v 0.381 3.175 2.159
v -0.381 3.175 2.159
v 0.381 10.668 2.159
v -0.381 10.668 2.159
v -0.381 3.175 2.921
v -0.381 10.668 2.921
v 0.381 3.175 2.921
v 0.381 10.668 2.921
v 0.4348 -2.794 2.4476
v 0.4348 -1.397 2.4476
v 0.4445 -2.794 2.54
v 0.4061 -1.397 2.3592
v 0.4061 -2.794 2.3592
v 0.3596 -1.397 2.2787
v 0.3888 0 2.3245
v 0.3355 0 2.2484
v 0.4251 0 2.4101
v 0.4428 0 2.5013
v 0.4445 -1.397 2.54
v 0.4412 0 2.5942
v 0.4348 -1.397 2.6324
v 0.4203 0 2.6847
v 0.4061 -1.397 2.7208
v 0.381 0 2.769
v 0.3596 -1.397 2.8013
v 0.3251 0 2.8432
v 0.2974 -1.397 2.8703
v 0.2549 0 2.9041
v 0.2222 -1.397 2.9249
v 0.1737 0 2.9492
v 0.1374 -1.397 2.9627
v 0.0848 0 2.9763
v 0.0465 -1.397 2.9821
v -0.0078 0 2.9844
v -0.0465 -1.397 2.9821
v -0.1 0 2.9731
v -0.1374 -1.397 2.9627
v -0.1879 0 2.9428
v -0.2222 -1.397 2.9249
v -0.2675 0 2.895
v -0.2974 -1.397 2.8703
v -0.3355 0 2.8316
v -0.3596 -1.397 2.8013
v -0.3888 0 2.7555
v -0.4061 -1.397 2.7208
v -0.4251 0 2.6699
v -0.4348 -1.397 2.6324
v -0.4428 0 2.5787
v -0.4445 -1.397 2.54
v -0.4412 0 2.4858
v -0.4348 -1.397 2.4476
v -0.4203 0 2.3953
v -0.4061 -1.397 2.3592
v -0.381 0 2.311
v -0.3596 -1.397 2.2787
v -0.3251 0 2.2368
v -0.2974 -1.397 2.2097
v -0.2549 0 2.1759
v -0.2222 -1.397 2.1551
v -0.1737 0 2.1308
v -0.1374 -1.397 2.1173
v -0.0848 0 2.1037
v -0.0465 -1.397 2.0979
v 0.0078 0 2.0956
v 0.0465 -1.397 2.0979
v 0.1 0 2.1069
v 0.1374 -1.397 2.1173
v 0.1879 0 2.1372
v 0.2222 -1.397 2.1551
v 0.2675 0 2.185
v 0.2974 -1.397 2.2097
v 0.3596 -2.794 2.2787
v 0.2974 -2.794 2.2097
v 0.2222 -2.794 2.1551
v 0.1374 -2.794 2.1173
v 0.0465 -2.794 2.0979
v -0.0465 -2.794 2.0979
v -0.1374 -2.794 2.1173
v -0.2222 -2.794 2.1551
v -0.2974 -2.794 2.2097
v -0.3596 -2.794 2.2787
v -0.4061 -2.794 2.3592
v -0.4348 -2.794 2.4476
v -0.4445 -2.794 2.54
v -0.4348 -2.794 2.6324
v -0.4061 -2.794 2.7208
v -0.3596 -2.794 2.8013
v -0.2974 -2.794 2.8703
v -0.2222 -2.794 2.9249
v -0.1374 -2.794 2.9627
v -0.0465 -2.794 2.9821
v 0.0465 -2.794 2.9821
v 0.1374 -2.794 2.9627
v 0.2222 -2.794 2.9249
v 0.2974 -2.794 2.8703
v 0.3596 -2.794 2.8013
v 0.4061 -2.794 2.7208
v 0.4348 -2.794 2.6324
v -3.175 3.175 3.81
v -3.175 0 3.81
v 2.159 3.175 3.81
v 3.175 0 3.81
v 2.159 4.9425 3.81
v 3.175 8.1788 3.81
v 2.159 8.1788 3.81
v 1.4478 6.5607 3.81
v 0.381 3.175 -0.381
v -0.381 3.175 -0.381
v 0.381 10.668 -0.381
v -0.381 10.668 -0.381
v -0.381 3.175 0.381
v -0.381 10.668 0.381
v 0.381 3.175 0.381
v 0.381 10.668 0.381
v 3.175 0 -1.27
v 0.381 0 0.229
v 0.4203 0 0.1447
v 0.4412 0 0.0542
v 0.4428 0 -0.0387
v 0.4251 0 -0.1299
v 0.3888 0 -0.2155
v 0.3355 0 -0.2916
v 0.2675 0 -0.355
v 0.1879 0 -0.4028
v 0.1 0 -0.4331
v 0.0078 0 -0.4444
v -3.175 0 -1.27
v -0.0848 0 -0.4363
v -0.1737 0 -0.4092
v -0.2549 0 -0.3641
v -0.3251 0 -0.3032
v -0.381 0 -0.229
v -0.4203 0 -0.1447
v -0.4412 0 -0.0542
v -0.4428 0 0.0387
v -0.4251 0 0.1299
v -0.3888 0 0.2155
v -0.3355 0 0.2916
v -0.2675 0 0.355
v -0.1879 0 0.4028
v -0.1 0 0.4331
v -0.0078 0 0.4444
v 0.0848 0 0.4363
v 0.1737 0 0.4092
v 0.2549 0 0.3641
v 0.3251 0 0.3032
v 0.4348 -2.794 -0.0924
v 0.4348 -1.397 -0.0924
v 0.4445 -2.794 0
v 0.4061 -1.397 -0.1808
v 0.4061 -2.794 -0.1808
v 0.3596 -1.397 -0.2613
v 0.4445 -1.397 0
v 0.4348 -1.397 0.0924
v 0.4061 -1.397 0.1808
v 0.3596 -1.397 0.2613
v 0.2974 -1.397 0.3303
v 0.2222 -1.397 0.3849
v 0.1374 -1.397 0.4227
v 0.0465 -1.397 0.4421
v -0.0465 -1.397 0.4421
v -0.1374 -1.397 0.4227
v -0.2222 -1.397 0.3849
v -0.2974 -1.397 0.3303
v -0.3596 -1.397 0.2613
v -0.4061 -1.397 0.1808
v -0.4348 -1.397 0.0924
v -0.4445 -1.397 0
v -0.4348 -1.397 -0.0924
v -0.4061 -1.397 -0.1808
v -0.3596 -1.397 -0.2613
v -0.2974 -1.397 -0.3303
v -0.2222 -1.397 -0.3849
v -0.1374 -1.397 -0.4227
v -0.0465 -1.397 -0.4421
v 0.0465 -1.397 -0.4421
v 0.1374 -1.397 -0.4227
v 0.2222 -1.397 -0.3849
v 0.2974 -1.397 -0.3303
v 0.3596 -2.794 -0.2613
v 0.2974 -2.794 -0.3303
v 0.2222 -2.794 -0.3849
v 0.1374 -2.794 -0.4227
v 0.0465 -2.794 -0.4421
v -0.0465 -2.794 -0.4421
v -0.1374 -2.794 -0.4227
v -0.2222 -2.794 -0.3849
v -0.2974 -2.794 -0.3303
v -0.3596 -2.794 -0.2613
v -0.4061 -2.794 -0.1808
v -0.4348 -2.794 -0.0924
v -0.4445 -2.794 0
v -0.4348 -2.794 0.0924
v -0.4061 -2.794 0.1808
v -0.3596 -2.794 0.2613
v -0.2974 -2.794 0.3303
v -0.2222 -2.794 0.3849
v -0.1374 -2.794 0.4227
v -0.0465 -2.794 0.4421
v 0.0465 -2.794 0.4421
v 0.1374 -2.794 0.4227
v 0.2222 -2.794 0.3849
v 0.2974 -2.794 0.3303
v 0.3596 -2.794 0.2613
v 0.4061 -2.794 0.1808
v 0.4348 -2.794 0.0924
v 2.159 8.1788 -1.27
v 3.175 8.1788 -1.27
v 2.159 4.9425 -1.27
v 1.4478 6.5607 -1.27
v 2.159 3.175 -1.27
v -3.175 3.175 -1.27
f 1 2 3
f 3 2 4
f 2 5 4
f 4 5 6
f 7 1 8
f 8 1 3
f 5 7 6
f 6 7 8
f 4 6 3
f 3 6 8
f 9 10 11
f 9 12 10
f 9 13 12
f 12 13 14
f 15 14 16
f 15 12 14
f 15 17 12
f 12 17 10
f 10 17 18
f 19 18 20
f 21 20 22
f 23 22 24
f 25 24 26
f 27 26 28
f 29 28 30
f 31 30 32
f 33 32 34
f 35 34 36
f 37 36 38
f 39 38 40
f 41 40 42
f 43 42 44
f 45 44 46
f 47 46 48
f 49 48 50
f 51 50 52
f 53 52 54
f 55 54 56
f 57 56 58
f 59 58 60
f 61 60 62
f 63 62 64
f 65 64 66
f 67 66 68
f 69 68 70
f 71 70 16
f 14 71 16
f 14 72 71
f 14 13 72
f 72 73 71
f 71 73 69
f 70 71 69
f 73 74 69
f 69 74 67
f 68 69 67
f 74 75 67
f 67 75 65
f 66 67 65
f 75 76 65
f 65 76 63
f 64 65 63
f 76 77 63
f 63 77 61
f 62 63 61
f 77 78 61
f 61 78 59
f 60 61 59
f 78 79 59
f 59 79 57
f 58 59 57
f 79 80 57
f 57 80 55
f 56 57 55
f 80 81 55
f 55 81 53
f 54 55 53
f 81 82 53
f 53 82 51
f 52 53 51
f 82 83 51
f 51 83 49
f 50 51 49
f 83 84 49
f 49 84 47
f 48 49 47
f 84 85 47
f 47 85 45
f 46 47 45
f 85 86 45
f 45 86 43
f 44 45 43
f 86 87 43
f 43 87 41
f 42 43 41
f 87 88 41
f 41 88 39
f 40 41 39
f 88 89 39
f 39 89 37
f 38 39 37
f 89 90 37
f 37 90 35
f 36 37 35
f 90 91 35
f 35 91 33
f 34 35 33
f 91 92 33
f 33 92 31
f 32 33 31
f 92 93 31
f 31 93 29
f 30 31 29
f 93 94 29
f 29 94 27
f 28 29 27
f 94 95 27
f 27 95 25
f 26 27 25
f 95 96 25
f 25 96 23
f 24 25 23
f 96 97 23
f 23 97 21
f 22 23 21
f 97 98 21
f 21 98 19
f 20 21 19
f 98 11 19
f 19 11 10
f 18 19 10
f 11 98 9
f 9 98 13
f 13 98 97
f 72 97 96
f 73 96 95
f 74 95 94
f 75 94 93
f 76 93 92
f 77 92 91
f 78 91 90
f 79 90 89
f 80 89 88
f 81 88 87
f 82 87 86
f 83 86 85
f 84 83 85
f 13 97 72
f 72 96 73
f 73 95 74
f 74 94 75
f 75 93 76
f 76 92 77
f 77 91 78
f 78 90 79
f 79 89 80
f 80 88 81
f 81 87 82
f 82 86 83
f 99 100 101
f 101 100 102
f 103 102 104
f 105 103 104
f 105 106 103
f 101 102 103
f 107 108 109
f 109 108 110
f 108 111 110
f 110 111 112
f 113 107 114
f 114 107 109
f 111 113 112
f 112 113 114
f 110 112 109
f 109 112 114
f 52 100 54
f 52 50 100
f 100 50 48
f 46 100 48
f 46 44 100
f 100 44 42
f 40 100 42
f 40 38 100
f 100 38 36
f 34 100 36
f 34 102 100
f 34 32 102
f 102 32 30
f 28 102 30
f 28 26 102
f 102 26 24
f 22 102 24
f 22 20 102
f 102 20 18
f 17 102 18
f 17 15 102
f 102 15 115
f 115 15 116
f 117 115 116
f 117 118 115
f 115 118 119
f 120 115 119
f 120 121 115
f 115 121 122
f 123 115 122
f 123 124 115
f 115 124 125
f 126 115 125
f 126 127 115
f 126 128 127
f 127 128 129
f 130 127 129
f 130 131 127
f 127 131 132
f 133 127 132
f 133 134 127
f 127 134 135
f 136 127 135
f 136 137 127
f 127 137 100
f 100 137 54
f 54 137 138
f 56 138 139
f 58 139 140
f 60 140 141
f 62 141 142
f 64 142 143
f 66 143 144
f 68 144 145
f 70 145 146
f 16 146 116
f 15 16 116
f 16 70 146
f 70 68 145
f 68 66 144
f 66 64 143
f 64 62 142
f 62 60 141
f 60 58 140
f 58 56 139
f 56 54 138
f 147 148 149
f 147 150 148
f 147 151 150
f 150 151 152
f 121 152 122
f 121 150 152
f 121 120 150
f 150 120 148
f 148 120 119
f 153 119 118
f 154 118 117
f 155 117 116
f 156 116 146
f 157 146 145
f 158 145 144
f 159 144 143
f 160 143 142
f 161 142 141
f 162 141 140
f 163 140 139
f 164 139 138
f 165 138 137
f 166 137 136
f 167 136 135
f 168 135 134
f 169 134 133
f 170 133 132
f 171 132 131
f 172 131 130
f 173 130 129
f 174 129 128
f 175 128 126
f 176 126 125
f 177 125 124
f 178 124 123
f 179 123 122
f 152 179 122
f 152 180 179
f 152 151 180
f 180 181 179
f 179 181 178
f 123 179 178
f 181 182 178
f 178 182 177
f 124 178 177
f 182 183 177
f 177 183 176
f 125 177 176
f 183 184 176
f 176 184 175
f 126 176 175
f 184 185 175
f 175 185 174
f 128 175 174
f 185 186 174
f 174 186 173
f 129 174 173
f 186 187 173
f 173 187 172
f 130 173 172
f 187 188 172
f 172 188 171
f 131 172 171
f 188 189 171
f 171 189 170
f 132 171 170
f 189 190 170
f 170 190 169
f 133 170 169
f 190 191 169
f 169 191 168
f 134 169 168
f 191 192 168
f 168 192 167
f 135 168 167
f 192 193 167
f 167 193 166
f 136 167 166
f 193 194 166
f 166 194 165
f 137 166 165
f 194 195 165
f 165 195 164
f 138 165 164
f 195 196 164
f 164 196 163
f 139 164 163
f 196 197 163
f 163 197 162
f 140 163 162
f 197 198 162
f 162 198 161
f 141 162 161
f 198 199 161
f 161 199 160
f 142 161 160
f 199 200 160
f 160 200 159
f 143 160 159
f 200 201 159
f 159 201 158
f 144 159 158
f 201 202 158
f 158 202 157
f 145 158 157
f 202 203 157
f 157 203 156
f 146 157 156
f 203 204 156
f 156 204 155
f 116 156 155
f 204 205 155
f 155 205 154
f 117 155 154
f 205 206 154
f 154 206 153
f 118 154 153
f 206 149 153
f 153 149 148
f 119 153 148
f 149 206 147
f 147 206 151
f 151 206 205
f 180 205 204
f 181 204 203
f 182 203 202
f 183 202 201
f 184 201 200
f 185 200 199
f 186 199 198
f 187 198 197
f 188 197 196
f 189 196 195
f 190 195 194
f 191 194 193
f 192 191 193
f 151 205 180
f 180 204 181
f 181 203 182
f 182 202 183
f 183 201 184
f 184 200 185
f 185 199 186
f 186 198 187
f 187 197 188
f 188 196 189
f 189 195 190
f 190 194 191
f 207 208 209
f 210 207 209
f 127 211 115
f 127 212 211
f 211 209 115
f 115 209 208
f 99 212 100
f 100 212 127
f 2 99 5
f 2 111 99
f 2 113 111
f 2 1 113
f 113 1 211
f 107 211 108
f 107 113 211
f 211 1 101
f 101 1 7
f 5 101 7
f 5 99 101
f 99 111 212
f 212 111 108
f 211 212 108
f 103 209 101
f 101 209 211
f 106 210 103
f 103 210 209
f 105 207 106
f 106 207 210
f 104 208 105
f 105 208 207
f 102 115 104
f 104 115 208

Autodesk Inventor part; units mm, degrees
ref_plane "YZ Plane (RIGHT)" through (0, 0, 0) normal (1, 0, 0) x (0, 1, 0)
ref_plane "XZ Plane (TOP)" through (0, 0, 0) normal (0, 1, 0) x (-1, 0, 0)
ref_plane "XY Plane (FRONT)" through (0, 0, 0) normal (0, 0, 1) x (1, 0, 0)
sketch "Sketch2" plane through (0, 0, 0) normal (0, 0, 1) x (1, 0, 0)
  line L0 (-4.445, 0) -> (4.445, 0) construction
  line L1 (0, 9.8146) -> (0, -1.6358) construction
  line L2 (-3.175, 0) -> (3.175, 0)
  line L3 (2.159, 3.175) -> (-3.175, 3.175)
  line L4 (-3.175, 3.175) -> (-3.175, 0)
  line L5 (3.175, 0) -> (3.175, 8.1788)
  line L6 (3.175, 8.1788) -> (2.159, 8.1788)
  line L7 (2.159, 8.1788) -> (1.4478, 6.5607)
  line L8 (1.4478, 6.5607) -> (2.159, 4.9425)
  line L9 (2.159, 4.9425) -> (2.159, 3.175)
  point P0 (0, 0)
  dimension "d0" = 6.35
  dimension "d1" = 3.175
  dimension "d2" = 8.1788
  dimension "d3" = 1.4478
  dimension "d4" = 1.016
extrude "Extrusion1" add sketch "Sketch2" along normal mid plane 2.54
sketch "Sketch3" plane through (-3.175, 0, 1.27) normal (0, -1, 0) x (1, 0, 0)
  line L0 (-1.27, -1.27) -> (7.62, -1.27) construction
  line L1 (3.175, 0.508) -> (3.175, -3.048) construction
  line L2 (2.794, -0.889) -> (3.556, -0.889)
  line L3 (3.556, -0.889) -> (3.556, -1.651)
  line L4 (3.556, -1.651) -> (2.794, -1.651)
  line L5 (2.794, -1.651) -> (2.794, -0.889)
  circle A0 centre (3.175, -1.27) radius 0.4445
  dimension "d7" = 0.762
  dimension "d15" = 0.889
extrude "Extrusion2" add sketch "Sketch3" along normal blind 2.794 contours A0 L2 | L2 A0 L3 L4 L5 | L5 A0 | A0 L3 | L4 A0
extrude "Extrusion3" add sketch "Sketch3" against normal blind 10.668 contours L2 A0 L5 | L2 A0 L3 L4 L5 | L2 L3 A0 | A0 L4 L5 | L3 L4 A0
pattern_linear "Rectangular Pattern1" count 2 spacing 2.54 along (0, 0, 1) of "Extrusion1", "Extrusion2", "Extrusion3"
properties part number "Molex KK 2 Pin"
